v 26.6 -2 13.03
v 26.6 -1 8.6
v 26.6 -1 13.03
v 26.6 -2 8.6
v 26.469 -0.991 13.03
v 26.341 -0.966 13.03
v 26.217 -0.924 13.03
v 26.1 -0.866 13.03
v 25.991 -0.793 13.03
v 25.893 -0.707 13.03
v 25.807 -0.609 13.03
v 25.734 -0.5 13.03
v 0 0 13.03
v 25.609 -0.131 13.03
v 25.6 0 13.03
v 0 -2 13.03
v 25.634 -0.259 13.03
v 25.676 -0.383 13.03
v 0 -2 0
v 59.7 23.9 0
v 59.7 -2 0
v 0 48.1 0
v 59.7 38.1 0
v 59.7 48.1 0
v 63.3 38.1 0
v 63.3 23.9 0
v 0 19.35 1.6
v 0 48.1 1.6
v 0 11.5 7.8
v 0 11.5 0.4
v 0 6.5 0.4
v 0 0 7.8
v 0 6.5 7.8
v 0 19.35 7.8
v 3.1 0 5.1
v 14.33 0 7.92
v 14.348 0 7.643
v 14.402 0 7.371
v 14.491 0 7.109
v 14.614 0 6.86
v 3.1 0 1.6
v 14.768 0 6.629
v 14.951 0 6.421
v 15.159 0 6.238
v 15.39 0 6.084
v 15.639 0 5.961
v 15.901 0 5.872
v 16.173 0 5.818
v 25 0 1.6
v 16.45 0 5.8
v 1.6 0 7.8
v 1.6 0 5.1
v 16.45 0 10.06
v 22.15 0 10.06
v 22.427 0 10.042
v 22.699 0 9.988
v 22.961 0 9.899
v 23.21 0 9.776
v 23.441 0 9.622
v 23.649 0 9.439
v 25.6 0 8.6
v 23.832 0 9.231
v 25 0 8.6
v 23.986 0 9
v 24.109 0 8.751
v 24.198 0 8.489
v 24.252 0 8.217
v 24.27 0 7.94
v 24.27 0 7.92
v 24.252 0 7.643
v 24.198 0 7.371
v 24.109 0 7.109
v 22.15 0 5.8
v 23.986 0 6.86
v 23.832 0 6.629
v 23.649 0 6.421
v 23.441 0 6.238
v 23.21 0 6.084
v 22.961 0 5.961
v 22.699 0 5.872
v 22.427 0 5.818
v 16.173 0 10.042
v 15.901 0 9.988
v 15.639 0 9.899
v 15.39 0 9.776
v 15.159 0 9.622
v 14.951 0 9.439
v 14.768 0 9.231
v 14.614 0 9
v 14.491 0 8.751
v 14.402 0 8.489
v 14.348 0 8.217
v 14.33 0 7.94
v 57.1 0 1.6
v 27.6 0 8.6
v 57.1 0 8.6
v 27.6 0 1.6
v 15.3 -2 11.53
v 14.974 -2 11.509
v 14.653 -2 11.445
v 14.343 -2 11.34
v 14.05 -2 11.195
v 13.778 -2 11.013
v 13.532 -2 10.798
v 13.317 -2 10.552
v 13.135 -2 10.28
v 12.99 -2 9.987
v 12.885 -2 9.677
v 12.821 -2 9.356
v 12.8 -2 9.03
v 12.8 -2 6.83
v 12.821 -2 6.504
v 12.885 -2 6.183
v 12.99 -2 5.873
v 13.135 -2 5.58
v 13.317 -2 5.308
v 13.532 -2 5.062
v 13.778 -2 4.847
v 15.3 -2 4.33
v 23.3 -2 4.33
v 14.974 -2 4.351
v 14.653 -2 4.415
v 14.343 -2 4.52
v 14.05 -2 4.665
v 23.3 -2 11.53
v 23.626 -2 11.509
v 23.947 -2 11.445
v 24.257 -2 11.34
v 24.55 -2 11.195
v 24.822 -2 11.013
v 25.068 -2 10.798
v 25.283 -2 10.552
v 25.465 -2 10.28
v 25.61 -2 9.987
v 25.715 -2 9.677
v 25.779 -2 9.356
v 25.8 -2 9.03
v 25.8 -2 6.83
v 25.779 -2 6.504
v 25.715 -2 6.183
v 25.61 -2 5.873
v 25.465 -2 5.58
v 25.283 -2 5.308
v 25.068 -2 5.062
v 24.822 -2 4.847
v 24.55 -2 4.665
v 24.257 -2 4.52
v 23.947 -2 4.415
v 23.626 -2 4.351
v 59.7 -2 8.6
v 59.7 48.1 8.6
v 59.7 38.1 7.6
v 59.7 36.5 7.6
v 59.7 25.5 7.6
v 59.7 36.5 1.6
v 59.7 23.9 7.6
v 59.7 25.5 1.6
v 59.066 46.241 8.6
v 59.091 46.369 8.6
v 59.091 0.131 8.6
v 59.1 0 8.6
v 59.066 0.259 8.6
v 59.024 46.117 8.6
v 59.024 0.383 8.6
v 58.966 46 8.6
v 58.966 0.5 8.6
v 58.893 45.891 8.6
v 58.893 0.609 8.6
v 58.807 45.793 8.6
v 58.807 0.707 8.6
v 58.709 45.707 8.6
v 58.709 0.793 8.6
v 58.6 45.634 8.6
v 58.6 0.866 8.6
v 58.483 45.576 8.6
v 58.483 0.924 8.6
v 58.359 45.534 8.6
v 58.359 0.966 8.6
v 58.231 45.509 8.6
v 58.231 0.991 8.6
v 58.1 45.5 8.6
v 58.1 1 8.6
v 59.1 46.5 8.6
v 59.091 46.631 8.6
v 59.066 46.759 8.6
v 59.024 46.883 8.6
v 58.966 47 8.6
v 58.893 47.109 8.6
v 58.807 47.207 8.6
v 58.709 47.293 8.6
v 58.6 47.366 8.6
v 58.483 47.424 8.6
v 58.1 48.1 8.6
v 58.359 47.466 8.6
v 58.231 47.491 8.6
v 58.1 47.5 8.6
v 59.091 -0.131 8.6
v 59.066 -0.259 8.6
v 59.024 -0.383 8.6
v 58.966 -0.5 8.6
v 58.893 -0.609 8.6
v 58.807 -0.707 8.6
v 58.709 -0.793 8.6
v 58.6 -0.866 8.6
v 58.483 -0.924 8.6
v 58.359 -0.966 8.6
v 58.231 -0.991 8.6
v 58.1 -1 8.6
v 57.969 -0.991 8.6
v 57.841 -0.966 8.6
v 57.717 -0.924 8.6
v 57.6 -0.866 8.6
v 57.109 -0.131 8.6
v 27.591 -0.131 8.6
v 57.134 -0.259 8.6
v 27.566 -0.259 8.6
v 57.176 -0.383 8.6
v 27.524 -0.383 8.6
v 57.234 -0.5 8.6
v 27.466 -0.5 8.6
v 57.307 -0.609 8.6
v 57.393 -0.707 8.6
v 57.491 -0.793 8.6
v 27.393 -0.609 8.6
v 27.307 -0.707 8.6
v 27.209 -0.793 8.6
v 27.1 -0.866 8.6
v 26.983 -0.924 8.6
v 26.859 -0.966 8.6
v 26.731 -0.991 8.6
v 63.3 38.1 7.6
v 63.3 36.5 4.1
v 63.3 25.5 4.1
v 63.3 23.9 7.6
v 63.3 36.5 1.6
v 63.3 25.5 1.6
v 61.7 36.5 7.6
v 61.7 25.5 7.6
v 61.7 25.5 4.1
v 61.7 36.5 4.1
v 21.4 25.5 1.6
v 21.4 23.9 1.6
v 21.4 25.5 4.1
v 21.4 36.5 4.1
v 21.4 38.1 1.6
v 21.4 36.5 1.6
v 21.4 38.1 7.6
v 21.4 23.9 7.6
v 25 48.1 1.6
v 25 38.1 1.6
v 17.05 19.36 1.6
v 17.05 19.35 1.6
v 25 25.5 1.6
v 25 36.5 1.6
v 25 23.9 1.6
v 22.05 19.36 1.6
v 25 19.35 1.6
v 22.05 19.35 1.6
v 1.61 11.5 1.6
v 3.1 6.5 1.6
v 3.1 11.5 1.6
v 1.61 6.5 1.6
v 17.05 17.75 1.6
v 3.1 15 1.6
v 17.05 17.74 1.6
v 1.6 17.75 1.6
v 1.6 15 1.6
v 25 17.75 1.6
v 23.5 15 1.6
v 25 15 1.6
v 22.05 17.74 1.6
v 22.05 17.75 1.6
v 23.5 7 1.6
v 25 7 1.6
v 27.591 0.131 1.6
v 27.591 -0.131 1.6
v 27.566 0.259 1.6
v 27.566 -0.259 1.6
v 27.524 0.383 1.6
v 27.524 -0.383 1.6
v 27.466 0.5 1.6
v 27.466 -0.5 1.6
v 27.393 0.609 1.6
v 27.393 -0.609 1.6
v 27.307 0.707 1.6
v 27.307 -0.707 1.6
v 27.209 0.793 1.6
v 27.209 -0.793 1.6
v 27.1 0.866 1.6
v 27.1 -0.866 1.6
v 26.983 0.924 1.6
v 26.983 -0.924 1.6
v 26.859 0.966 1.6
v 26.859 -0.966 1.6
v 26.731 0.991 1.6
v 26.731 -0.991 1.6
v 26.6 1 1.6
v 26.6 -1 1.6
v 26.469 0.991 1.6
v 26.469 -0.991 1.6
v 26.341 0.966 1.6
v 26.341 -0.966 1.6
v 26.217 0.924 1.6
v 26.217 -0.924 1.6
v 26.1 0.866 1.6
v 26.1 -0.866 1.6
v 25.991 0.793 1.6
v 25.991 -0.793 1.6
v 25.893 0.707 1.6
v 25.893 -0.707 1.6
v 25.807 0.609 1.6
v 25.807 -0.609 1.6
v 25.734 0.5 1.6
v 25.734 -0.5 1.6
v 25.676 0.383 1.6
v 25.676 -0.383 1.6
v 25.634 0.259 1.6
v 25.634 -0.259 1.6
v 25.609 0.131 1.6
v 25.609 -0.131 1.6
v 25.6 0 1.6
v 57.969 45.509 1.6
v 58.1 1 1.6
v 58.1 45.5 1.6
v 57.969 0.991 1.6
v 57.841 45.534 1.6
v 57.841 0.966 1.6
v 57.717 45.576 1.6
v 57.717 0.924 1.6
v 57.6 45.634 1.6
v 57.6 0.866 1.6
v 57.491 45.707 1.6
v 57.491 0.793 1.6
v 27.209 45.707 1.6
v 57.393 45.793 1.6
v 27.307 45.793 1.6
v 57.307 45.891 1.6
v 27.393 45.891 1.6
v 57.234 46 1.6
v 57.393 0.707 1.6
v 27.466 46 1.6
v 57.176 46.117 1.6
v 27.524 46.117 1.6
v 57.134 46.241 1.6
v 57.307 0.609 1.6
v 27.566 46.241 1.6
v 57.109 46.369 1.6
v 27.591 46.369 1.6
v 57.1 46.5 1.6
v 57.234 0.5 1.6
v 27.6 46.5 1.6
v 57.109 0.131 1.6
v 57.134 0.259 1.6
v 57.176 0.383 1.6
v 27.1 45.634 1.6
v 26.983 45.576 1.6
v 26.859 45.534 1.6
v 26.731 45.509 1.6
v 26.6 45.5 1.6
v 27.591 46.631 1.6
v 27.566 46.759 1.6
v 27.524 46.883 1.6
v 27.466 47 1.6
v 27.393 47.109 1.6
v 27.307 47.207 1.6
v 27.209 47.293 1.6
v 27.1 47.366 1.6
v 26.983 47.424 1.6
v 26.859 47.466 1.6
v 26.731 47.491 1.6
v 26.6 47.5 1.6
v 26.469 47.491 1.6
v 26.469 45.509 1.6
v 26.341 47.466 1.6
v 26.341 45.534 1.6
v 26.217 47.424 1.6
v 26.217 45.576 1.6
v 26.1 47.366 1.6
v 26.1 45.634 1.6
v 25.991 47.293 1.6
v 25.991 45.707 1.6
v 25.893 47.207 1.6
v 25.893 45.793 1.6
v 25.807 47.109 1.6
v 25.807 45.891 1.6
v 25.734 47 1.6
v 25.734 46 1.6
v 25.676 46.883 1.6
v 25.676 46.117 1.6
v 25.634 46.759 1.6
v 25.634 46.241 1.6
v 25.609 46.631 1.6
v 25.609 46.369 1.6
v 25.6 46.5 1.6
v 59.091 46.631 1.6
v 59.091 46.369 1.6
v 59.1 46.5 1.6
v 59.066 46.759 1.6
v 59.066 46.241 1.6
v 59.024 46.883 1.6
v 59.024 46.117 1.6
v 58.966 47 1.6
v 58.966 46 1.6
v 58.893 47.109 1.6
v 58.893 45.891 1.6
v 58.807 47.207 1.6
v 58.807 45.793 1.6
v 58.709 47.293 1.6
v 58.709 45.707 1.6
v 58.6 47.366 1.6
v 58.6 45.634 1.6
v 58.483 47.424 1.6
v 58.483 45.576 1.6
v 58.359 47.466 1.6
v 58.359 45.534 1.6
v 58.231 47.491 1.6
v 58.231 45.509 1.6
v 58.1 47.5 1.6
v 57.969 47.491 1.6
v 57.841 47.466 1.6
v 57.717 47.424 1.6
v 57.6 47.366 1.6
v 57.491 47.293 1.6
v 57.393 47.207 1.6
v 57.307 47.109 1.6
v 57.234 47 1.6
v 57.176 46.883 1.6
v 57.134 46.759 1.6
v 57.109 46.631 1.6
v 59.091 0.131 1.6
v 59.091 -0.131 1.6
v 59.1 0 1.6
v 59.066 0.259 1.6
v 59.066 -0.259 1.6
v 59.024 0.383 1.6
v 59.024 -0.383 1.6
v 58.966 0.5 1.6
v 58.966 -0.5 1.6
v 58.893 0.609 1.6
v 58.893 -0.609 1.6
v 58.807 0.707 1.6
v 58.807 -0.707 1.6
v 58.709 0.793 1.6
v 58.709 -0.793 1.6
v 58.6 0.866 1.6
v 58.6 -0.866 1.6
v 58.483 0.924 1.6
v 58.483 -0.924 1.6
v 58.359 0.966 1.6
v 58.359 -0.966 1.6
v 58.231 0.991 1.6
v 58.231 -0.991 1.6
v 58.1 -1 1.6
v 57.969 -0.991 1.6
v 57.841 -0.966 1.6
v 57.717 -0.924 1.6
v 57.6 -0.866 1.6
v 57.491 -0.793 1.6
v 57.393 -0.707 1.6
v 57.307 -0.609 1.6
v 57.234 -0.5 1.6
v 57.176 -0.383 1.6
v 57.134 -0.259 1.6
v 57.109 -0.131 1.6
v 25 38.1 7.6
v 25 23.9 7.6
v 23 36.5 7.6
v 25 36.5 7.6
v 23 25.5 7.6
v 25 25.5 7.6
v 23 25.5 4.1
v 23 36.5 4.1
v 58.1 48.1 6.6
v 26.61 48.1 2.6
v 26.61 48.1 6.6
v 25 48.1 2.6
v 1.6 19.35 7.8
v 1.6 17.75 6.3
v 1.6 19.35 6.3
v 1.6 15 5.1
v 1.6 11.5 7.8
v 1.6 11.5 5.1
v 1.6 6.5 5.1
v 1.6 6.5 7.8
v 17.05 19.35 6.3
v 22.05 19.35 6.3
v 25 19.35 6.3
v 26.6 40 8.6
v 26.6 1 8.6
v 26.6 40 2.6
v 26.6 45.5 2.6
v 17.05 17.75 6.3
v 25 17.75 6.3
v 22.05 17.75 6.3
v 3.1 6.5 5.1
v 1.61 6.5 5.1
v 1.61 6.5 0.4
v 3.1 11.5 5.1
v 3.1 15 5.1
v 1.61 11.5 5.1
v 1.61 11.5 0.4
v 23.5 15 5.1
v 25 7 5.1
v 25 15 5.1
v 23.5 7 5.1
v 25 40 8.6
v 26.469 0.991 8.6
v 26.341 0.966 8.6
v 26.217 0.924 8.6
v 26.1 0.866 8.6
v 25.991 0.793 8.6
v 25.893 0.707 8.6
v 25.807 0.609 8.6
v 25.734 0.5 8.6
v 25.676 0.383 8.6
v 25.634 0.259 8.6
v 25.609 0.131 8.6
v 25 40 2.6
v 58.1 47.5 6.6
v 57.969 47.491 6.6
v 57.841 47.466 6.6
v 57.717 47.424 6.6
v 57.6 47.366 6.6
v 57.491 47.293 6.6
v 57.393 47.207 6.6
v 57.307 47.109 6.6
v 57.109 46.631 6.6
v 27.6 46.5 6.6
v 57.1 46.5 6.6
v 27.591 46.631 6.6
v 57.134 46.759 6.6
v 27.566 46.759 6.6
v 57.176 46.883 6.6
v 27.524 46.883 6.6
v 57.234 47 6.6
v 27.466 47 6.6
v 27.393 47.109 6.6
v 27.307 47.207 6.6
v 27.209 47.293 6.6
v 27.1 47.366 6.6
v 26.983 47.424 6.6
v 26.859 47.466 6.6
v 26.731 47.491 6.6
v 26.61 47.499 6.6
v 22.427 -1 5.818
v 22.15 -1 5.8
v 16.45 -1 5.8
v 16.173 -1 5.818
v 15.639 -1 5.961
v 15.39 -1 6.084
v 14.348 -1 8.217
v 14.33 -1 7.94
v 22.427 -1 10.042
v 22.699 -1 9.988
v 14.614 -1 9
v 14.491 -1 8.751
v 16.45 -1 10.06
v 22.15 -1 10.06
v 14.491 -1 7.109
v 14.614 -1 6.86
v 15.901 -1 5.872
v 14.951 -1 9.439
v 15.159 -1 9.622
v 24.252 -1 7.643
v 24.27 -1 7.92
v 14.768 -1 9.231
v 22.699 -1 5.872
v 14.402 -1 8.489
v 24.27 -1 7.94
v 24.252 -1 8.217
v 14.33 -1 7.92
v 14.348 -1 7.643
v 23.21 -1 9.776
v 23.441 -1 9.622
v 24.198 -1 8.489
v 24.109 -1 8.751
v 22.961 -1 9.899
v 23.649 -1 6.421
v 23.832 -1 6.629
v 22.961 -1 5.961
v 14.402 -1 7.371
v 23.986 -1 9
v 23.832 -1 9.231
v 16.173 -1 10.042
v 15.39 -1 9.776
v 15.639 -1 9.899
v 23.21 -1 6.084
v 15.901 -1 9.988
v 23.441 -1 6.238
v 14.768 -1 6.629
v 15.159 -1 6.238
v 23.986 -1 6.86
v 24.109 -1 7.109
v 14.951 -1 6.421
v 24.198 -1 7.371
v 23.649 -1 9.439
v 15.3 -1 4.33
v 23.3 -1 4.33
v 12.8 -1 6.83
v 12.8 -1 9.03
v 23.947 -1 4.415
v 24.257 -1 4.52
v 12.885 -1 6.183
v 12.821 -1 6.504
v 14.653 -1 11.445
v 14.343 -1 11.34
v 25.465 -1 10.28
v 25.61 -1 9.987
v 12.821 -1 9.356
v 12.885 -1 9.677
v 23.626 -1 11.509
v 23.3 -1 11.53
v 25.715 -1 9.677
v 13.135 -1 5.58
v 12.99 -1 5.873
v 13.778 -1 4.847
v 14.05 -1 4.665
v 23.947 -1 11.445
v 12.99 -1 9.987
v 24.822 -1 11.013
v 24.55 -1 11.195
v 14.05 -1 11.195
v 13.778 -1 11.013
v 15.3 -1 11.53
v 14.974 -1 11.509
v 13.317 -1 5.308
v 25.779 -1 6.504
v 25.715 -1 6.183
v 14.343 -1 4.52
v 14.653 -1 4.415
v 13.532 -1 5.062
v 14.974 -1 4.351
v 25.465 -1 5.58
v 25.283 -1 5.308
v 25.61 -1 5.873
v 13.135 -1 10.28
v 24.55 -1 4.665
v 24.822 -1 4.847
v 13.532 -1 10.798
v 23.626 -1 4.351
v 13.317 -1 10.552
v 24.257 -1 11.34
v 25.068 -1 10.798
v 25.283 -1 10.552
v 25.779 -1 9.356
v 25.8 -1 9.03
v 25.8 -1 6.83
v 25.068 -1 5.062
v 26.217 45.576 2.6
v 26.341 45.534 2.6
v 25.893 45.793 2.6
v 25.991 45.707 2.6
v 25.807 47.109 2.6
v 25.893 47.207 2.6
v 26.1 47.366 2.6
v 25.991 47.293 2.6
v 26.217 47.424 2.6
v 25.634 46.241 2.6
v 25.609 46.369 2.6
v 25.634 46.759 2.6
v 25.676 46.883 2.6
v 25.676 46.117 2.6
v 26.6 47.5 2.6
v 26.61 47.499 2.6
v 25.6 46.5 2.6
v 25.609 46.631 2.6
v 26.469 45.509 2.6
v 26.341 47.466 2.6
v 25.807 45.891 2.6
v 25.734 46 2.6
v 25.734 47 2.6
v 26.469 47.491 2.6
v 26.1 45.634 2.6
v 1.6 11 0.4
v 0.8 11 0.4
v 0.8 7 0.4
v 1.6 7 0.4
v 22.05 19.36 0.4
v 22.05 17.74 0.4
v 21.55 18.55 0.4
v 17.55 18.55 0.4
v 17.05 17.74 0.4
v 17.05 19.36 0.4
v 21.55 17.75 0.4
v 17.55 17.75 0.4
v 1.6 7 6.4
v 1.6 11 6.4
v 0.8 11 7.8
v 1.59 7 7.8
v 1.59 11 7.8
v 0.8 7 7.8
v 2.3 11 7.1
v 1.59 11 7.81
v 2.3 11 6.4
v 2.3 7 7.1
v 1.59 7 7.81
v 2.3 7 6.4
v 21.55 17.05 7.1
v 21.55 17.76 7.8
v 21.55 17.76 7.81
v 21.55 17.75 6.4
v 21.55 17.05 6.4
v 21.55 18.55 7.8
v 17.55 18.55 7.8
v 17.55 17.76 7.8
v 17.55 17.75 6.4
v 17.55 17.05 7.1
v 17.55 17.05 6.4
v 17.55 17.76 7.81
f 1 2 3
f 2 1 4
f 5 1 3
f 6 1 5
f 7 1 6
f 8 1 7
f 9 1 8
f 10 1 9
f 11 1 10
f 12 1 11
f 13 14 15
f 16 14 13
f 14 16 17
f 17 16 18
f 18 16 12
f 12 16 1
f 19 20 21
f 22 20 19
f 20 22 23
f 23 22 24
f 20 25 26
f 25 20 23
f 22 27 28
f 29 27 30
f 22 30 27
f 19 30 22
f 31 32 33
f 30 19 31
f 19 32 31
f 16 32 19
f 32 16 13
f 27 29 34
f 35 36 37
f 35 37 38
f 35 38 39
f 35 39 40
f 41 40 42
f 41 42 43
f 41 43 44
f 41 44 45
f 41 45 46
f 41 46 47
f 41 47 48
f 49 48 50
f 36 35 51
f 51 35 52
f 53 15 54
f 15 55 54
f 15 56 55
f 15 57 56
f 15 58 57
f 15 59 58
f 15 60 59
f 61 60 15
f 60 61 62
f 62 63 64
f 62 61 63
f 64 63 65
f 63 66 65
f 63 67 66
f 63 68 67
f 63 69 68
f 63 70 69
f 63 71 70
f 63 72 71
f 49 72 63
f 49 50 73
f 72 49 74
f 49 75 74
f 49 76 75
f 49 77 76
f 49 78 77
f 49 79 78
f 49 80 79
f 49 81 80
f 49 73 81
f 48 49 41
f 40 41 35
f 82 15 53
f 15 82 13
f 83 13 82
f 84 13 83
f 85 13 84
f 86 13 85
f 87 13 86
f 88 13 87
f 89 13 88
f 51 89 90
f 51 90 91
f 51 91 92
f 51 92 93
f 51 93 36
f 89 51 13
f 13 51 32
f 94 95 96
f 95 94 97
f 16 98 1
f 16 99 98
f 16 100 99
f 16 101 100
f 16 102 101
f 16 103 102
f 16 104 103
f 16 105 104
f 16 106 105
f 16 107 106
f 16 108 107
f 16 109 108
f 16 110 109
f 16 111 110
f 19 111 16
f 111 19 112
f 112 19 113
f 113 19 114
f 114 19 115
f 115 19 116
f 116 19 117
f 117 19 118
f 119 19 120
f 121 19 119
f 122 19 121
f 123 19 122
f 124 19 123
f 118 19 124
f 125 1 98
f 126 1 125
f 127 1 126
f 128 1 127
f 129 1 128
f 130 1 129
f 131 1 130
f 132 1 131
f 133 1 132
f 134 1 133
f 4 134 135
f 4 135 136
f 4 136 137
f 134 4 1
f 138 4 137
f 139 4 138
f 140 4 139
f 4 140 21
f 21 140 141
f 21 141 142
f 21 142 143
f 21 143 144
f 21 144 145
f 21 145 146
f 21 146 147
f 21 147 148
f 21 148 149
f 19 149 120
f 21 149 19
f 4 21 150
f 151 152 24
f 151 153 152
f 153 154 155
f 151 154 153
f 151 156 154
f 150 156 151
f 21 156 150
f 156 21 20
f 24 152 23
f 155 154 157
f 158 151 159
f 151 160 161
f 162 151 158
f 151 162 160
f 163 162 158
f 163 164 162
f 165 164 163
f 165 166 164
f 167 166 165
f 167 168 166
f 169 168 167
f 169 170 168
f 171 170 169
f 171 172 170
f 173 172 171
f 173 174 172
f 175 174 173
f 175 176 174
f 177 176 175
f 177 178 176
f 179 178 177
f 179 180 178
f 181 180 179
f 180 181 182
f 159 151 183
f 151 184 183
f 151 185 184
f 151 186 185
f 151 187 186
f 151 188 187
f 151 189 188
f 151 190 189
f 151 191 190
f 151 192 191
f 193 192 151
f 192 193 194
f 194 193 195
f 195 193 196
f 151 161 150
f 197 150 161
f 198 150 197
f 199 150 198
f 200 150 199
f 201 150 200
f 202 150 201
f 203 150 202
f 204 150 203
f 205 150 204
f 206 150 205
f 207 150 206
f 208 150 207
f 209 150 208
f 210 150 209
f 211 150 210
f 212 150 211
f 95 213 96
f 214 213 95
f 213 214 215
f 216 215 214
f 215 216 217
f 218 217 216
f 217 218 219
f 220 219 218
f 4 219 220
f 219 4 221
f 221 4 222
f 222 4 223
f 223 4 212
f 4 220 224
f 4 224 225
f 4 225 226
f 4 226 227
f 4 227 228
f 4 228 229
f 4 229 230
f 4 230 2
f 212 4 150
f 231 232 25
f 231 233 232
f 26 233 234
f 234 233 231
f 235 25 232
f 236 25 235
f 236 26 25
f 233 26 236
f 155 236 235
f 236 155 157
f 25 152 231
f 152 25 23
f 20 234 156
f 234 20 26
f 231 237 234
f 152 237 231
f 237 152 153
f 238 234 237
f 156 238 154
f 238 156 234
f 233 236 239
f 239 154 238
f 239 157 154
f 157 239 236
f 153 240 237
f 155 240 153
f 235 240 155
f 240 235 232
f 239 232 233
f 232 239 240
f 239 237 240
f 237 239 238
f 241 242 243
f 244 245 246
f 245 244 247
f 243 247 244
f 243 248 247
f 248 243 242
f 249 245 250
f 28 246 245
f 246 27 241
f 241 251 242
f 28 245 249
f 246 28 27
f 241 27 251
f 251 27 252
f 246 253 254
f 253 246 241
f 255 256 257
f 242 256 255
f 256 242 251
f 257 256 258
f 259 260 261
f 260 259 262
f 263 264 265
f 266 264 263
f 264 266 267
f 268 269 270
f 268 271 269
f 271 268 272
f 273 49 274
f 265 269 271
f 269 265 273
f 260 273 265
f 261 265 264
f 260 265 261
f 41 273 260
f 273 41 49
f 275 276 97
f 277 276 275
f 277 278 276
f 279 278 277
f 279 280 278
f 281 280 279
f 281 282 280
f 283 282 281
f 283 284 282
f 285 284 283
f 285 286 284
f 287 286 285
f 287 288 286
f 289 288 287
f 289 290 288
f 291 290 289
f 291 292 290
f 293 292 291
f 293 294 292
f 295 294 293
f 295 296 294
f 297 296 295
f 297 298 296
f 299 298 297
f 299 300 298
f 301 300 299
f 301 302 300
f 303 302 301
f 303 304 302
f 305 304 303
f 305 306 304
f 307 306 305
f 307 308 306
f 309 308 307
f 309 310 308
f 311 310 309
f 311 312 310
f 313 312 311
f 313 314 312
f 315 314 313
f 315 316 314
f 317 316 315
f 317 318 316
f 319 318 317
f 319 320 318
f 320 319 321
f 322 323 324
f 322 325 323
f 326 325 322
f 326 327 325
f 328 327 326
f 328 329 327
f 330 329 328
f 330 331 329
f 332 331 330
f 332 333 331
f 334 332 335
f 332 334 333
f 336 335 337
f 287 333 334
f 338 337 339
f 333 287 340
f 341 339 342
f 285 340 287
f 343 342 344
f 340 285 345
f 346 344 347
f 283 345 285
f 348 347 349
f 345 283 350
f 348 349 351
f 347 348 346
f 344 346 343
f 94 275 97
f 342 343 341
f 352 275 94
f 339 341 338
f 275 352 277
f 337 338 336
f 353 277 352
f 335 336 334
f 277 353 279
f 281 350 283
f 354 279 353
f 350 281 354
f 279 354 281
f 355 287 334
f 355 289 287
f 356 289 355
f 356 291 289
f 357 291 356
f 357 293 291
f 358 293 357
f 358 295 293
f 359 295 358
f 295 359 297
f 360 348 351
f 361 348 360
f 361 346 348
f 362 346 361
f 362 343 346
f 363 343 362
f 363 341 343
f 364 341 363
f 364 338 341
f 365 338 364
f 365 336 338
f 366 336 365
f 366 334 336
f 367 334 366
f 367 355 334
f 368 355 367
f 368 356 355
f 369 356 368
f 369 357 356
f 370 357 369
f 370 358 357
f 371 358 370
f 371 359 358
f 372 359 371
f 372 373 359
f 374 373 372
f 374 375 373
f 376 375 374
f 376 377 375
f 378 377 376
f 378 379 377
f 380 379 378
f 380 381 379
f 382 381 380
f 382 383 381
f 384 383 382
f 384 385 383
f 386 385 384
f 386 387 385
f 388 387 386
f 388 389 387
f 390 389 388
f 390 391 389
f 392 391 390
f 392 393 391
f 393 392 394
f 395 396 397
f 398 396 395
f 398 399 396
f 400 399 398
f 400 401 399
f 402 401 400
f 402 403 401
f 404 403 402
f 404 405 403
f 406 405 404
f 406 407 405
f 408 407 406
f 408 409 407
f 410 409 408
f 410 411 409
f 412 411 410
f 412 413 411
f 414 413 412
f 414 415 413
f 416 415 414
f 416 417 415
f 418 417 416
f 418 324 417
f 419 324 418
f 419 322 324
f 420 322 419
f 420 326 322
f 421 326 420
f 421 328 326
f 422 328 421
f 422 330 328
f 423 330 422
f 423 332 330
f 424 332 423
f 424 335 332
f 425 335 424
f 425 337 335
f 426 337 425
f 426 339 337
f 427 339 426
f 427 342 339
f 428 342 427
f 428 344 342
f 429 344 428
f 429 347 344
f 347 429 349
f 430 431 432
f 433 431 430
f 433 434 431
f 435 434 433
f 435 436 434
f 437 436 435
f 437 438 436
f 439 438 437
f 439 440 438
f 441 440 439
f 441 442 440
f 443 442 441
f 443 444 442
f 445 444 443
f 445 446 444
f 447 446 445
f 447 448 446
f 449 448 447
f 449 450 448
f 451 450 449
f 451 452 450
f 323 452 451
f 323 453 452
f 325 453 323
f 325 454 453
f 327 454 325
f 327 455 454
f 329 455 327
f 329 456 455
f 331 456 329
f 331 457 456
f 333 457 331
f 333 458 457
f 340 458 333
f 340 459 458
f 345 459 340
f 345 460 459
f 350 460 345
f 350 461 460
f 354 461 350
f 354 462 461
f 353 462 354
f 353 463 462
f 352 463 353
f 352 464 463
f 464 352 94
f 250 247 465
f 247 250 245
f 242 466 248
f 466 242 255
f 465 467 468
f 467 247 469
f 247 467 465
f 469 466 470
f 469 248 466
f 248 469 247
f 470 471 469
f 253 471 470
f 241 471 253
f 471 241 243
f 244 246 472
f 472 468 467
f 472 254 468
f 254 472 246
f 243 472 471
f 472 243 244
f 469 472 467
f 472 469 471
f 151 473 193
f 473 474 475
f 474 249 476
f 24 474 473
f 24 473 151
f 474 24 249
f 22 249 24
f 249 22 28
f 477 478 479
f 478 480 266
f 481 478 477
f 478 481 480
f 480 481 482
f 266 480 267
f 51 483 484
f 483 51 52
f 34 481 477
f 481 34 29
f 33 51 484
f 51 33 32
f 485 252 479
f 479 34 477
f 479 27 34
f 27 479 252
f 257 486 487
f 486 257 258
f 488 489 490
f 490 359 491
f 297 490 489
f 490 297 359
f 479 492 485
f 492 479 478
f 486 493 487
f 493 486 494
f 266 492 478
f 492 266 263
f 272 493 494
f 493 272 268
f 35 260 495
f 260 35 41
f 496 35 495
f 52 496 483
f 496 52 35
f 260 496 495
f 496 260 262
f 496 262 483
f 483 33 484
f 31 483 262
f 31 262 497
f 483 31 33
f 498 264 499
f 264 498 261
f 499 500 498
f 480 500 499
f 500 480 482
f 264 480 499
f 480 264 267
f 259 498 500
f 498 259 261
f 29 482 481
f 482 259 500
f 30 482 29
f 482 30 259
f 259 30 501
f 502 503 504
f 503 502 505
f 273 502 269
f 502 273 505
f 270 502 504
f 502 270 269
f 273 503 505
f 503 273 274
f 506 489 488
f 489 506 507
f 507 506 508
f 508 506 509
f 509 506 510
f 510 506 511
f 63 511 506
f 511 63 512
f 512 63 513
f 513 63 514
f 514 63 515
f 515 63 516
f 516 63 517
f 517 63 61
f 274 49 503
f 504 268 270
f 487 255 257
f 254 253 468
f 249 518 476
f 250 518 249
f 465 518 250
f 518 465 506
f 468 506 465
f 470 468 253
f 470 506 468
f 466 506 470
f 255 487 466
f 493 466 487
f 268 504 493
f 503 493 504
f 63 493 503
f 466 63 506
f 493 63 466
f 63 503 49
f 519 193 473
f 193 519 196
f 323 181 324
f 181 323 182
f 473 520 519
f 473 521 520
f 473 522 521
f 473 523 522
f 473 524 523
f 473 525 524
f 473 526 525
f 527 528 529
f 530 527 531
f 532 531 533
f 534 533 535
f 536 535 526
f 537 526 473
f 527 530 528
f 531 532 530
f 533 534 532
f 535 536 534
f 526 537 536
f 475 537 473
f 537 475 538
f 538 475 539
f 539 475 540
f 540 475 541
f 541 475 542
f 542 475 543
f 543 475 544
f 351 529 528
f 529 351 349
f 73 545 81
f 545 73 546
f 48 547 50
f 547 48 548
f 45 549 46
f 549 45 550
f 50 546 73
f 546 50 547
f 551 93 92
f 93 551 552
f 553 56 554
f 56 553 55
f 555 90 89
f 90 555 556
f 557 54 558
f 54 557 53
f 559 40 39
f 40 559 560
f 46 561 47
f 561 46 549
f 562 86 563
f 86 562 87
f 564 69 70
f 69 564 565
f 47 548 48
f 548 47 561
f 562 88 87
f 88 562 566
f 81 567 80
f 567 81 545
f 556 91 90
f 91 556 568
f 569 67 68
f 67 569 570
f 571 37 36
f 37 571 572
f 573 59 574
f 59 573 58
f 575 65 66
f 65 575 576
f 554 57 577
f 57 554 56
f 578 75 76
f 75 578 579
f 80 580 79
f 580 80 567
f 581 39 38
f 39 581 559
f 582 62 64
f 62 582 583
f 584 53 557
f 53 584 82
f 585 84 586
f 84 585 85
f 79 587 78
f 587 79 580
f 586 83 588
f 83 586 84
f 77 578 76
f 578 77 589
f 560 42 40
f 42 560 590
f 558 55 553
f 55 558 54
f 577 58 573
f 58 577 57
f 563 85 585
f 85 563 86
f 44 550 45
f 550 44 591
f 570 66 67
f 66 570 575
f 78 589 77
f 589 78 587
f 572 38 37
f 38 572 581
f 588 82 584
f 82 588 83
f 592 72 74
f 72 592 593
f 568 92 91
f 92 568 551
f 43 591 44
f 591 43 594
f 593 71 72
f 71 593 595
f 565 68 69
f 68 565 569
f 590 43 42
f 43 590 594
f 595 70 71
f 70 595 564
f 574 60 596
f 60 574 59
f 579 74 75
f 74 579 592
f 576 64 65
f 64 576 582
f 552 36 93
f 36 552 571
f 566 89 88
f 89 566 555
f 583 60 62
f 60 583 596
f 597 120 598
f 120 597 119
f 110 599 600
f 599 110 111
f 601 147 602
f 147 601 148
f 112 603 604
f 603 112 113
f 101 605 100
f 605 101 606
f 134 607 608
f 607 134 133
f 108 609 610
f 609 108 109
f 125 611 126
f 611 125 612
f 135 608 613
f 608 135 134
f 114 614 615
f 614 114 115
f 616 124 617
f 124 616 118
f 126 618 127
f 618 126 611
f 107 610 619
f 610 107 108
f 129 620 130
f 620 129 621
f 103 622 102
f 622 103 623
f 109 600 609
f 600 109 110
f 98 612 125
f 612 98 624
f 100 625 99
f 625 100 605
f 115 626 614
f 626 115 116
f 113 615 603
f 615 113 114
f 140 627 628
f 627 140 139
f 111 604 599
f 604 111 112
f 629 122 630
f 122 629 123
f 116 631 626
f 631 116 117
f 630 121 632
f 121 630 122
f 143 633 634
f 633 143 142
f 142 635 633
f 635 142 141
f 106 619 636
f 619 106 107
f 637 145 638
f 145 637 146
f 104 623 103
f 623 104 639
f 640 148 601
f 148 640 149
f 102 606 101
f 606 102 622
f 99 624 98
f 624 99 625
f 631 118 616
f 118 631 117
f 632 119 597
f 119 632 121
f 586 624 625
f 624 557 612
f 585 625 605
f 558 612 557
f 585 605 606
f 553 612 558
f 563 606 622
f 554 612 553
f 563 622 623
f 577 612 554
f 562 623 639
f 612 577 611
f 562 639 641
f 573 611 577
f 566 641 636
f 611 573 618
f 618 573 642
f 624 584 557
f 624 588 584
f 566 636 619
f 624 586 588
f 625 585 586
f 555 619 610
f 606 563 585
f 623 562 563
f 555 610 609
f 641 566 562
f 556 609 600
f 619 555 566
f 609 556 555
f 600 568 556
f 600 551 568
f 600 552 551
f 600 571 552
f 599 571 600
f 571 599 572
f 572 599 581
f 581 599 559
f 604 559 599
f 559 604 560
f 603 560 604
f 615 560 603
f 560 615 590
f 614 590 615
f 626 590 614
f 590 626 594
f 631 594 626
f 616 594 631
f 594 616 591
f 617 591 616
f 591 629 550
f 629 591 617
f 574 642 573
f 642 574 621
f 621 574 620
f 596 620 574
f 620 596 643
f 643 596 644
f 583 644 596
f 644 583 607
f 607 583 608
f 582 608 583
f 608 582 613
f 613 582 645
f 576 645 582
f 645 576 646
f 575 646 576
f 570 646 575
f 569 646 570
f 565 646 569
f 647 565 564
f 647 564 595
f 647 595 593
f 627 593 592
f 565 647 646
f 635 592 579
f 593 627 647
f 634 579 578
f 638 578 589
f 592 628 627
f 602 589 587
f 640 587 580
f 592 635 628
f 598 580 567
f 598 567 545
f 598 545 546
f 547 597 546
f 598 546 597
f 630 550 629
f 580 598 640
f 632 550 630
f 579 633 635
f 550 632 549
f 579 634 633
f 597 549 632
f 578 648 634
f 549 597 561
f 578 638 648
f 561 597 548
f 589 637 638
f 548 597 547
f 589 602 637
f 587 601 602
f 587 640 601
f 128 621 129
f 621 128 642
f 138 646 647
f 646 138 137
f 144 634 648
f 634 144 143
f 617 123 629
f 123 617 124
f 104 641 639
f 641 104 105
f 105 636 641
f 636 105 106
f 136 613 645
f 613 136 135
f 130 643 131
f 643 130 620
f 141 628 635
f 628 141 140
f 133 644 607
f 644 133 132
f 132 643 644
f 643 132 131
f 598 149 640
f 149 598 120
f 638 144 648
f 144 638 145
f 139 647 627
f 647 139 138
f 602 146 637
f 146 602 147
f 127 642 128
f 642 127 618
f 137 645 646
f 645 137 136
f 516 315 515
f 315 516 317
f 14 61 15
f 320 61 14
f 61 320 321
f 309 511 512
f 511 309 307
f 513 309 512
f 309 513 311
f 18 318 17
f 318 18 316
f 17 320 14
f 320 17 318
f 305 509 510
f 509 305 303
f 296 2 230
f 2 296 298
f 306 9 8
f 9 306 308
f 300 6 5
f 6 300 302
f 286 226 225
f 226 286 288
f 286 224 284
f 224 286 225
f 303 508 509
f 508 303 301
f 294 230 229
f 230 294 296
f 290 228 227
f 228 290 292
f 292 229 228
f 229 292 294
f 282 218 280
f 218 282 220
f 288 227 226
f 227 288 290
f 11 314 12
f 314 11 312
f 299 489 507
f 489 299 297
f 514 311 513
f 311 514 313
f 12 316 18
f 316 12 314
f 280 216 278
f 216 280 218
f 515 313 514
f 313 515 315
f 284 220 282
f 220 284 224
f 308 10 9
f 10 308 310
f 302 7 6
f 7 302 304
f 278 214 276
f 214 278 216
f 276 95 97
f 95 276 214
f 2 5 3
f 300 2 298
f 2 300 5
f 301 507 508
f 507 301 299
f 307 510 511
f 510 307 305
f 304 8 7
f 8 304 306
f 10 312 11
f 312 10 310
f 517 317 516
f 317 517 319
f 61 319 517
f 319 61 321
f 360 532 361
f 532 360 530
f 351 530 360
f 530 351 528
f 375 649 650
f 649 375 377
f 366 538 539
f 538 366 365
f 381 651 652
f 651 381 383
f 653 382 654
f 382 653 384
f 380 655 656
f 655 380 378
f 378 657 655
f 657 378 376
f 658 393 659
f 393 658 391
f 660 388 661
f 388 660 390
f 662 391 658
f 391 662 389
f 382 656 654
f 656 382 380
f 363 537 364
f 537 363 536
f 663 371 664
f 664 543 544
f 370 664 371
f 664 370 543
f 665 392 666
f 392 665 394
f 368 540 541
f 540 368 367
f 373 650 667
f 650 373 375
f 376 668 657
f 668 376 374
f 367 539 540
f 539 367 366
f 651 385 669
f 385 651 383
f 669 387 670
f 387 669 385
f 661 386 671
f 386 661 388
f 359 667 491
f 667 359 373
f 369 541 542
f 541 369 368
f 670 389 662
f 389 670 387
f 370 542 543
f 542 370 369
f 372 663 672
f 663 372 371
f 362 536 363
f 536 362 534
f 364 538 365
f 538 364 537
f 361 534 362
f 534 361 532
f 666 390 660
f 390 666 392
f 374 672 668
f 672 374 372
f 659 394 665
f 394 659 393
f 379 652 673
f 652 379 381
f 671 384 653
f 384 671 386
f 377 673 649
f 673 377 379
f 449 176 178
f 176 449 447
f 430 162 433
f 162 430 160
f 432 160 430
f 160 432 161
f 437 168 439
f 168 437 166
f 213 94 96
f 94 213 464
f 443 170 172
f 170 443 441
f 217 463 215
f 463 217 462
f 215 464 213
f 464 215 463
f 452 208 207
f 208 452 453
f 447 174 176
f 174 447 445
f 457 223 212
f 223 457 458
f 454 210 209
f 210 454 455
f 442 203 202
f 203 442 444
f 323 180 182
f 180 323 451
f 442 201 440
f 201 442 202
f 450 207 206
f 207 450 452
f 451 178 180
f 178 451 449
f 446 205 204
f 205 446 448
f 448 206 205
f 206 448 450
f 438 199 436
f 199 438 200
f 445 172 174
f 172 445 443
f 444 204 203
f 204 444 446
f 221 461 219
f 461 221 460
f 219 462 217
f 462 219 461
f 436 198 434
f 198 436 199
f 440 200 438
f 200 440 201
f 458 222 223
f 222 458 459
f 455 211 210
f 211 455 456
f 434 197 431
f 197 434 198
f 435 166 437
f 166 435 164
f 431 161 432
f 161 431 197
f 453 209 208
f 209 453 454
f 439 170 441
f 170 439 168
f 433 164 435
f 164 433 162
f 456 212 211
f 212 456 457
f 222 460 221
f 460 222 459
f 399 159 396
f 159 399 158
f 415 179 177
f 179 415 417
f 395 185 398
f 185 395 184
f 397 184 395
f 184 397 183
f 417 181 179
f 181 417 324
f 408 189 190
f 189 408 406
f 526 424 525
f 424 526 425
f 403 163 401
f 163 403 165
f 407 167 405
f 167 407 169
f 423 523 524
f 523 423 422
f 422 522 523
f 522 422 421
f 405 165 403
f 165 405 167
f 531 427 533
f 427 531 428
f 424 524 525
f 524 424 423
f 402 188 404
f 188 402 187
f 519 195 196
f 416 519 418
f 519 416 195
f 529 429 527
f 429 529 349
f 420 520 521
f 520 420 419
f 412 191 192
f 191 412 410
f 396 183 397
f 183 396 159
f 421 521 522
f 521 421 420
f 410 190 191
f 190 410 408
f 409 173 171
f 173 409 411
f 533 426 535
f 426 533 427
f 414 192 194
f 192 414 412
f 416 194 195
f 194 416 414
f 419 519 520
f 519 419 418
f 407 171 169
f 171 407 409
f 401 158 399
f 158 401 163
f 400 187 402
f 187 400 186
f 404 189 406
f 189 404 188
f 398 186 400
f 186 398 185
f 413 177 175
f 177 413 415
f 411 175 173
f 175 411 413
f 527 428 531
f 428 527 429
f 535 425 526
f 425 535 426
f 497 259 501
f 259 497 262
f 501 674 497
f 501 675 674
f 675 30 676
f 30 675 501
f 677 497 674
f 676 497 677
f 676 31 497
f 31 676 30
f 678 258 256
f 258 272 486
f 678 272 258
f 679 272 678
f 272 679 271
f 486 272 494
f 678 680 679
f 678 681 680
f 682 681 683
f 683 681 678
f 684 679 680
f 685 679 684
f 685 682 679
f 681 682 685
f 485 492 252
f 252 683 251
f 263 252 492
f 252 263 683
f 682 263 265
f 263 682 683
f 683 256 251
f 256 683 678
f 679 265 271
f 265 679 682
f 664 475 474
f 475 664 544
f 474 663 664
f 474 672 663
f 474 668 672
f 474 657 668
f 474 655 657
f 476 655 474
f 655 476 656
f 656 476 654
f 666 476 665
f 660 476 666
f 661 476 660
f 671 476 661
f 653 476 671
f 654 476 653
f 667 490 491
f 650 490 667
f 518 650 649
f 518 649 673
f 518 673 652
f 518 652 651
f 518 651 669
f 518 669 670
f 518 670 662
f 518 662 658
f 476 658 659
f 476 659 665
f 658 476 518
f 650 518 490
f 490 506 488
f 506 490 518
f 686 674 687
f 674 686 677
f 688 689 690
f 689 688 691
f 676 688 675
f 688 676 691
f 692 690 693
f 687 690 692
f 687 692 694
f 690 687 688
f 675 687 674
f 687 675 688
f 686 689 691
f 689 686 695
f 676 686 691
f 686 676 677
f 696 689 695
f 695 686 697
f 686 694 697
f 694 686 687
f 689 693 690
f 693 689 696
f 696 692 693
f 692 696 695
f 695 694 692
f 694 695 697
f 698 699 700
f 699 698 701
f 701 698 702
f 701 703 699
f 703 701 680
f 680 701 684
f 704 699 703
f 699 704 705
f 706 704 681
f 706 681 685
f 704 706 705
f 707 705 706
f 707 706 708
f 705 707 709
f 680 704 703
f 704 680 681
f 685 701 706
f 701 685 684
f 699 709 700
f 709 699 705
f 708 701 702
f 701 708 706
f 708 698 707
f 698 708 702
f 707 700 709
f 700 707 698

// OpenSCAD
// Gamepad power holder: EEMB LP903042 LiPo (3.7 V 1100 mAh) +
// LN4056H USB-C charge/boost module. Units: mm.
//
// Coordinates are chosen for merging into the gamepad model:
//   X - along the case wall with the USB-C port, 0 = left outer edge of holder;
//   Y - 0 = INNER face of that case wall, +Y into the case,
//       outer case surface is at Y = -case_wall;
//   Z - 0 = inner surface of the case floor.
// Merge: union(gamepad_shell, holder); difference(..., usb_c_case_cutter).
//
// openscad -D 'part="holder"' -o gamepad_power_holder.stl gamepad_power_holder.scad
// openscad -D 'part="cutter"' -o usb_c_case_cutter.stl  gamepad_power_holder.scad

part = "holder"; // holder | cutter | assembly | interference

$fn = 48;
e = 0.01;

// Gamepad case
case_wall = 2.0;            // wall thickness at the USB-C port
include_front_wall = true;  // holder copy of the case wall (needed for standalone use)

// Charge/boost module (measured from photo; verify with calipers)
pcb_w = 23.0;               // along the USB edge
pcb_d = 17.5;               // USB edge to solder-pad edge
pcb_t = 1.2;
usb_w = 8.94;
usb_h = 3.26;
usb_len = 7.3;
usb_cx = 17.5;              // receptacle centre from PCB left edge (USB edge towards you)
usb_overhang = 1.7;         // receptacle beyond PCB edge
usb_z_off = 0;              // receptacle bottom above PCB top (negative for mid-mount)

// LiPo EEMB LP903042 (length includes folded protection board)
batt_w = 30.0;
batt_l = 45.0;
batt_t = 9.0;

// Holder
base_t = 1.6;
wall = 1.6;
standoff = 3.5;             // free space under the PCB
clr_side = 0.2;
clr_back = 0.25;
batt_clr = 0.75;
batt_wall_h = 7.0;
batt_back_h = 5.0;
usb_slot_clr = 0.5;
usb_web = 1.0;              // wall left around the receptacle; the rest is plug relief
relief_w = 13.0;            // USB-C plug overmold relief on the outer face
relief_h = 7.2;
relief_r = 2.5;
strap_w = 10;               // velcro strap / cable tie width
strap_gap = 2.0;
strap_y = 31;
finger_w = 4.0;
finger_t = 0.8;
finger_slit = 0.5;
finger_root = 0.4;
lip = 0.7;
lip_h = 0.7;
left_finger_y = 9.0;
back_finger_cx = 17.75;     // from PCB left edge, between B+ and B- pads

// Derived
bp_x0 = wall;
bp_x1 = bp_x0 + pcb_w + 2 * clr_side;
bp_d = pcb_d + clr_back;
div_x1 = bp_x1 + wall;
bat_x0 = div_x1;
bat_x1 = bat_x0 + batt_w + 2 * batt_clr;
bat_l = batt_l + 2 * batt_clr;
total_x = bat_x1 + wall;
total_y = bat_l + wall;

pcb_x0 = bp_x0 + clr_side;
pcb_z0 = base_t + standoff;
pcb_top = pcb_z0 + pcb_t;
usb_x = pcb_x0 + usb_cx;
usb_z = pcb_top + usb_z_off + usb_h / 2;
slot_w = usb_w + 2 * usb_slot_clr;
slot_h = usb_h + 2 * usb_slot_clr;
front_h = usb_z + relief_h / 2 + 1.5;
bp_wall_top = pcb_top + 1.5;
lip_z0 = pcb_top + 0.1;
lip_z1 = lip_z0 + lip_h;
finger_top = lip_z1 + lip;
bat_top = base_t + batt_wall_h;
back_top = base_t + batt_back_h;
bar_z0 = base_t + 2.5;
bar_top = base_t + 6.0;
back_finger_x = pcb_x0 + back_finger_cx;

module box(p0, p1) translate(p0) cube([p1[0] - p0[0], p1[1] - p0[1], p1[2] - p0[2]]);

module y_rounded_rect(cx, cz, w, h, r, y0, y1) {
    hull() for (sx = [-1, 1], sz = [-1, 1])
        translate([cx + sx * (w / 2 - r), y1, cz + sz * (h / 2 - r)])
            rotate([90, 0, 0]) cylinder(r = r, h = y1 - y0);
}

module usb_c_cutter(ext = 5) {
    y_out = -case_wall - ext;
    y_rounded_rect(usb_x, usb_z, slot_w, slot_h, slot_h / 2 - e, y_out, e);
    y_rounded_rect(usb_x, usb_z, relief_w, relief_h, relief_r, y_out, -usb_web);
}

// Lip profile in the plane (outward distance from wall face, z)
module lip_profile() {
    polygon([[-e, lip_z0], [lip, lip_z0], [lip, lip_z1], [-e, lip_z1 + lip + e]]);
}

module left_finger() {
    translate([wall - finger_t, left_finger_y - finger_w / 2, finger_root])
        cube([finger_t, finger_w, finger_top - finger_root]);
    translate([wall, left_finger_y + finger_w / 2, 0])
        rotate([90, 0, 0]) linear_extrude(finger_w) lip_profile();
}

module back_finger() {
    translate([back_finger_x - finger_w / 2, bp_d, finger_root])
        cube([finger_w, finger_t, finger_top - finger_root]);
    translate([back_finger_x - finger_w / 2, bp_d, 0])
        rotate([90, 0, 90]) linear_extrude(finger_w) mirror([1, 0]) lip_profile();
}

module strap_loop(x_face, dir) {
    y0 = strap_y - strap_w / 2 - 0.5 - wall;
    y1 = strap_y + strap_w / 2 + 0.5 + wall;
    depth = strap_gap + wall;
    translate([x_face, 0, 0]) scale([dir, 1, 1]) {
        box([-e, y0, 0], [depth, y1, base_t]);
        box([-e, y0, 0], [depth, y0 + wall, bar_top]);
        box([-e, y1 - wall, 0], [depth, y1, bar_top]);
        box([strap_gap, y0, bar_z0], [depth, y1, bar_top]);
    }
}

module holder_body() {
    // Base plate
    box([0, 0, 0], [total_x, total_y, base_t]);
    if (include_front_wall) {
        box([0, -case_wall, 0], [div_x1, 0, front_h]);
        box([div_x1 - e, -case_wall, 0], [total_x, 0, bat_top]);
    }
    // Board pocket: left wall, low back wall (wires pass over it)
    box([0, 0, 0], [bp_x0, bp_d + wall, bp_wall_top]);
    box([0, bp_d, 0], [div_x1, bp_d + wall, pcb_top]);
    // PCB ledges, clear of USB-C tabs and pad solder on the underside
    box([bp_x0 - e, 0, 0], [bp_x0 + 1.5, left_finger_y - finger_w / 2 - finger_slit, pcb_z0]);
    box([bp_x0 - e, left_finger_y + finger_w / 2 + finger_slit, 0], [bp_x0 + 1.5, 15.0, pcb_z0]);
    box([bp_x1 - 1.5, 7.0, 0], [bp_x1 + e, 15.0, pcb_z0]);
    // Battery pocket: divider, right wall, back wall
    box([bp_x1, 0, 0], [div_x1, total_y, bat_top]);
    box([bat_x1, 0, 0], [total_x, total_y, bat_top]);
    box([bp_x1, bat_l, 0], [total_x, total_y, back_top]);
    strap_loop(total_x, 1);
    strap_loop(bp_x1, -1);
}

module holder() {
    difference() {
        holder_body();
        if (include_front_wall) usb_c_cutter();
        // Free the snap fingers
        box([-e, left_finger_y - finger_w / 2 - finger_slit, finger_root],
            [bp_x0 + e, left_finger_y + finger_w / 2 + finger_slit, 50]);
        box([back_finger_x - finger_w / 2 - finger_slit, bp_d - e, finger_root],
            [back_finger_x + finger_w / 2 + finger_slit, bp_d + wall + e, 50]);
        // Battery wire exit at the back of the divider
        box([bp_x1 - e, bat_l - 6.5, base_t + 1.0], [div_x1 + e, bat_l + wall + e, 50]);
        // Corner reliefs for the pouch corners
        for (x = [bat_x0, bat_x1], y = [0, bat_l])
            translate([x, y, base_t]) cylinder(r = 1.0, h = 50);
    }
    left_finger();
    back_finger();
}

module board_model() {
    color("black") translate([pcb_x0, 0, pcb_z0]) cube([pcb_w, pcb_d, pcb_t]);
    color("silver") y_rounded_rect(usb_x, pcb_top + usb_z_off + usb_h / 2, usb_w, usb_h,
                                   usb_h / 2 - e, -usb_overhang, usb_len - usb_overhang);
    color("gray") translate([pcb_x0 + 1.2, pcb_d - 10.8, pcb_top]) cube([7, 7, 3.5]);
}

module battery_model() {
    color("lightsteelblue") translate([bat_x0 + batt_clr, batt_clr, base_t])
        cube([batt_w, batt_l, batt_t]);
}

module usb_plug_model(length = 35, clearance = 0.3) {
    y_rounded_rect(usb_x, usb_z, relief_w - 2 * clearance, relief_h - 2 * clearance,
                   relief_r - clearance, -usb_overhang - length, -usb_overhang - e);
}

if (part == "holder") holder();
else if (part == "cutter") usb_c_cutter();
else if (part == "assembly") {
    color("orange") holder();
    board_model();
    battery_model();
}
else if (part == "interference") intersection() {
    holder();
    union() {
        translate([0, e, 0]) board_model();
        battery_model();
    }
}
